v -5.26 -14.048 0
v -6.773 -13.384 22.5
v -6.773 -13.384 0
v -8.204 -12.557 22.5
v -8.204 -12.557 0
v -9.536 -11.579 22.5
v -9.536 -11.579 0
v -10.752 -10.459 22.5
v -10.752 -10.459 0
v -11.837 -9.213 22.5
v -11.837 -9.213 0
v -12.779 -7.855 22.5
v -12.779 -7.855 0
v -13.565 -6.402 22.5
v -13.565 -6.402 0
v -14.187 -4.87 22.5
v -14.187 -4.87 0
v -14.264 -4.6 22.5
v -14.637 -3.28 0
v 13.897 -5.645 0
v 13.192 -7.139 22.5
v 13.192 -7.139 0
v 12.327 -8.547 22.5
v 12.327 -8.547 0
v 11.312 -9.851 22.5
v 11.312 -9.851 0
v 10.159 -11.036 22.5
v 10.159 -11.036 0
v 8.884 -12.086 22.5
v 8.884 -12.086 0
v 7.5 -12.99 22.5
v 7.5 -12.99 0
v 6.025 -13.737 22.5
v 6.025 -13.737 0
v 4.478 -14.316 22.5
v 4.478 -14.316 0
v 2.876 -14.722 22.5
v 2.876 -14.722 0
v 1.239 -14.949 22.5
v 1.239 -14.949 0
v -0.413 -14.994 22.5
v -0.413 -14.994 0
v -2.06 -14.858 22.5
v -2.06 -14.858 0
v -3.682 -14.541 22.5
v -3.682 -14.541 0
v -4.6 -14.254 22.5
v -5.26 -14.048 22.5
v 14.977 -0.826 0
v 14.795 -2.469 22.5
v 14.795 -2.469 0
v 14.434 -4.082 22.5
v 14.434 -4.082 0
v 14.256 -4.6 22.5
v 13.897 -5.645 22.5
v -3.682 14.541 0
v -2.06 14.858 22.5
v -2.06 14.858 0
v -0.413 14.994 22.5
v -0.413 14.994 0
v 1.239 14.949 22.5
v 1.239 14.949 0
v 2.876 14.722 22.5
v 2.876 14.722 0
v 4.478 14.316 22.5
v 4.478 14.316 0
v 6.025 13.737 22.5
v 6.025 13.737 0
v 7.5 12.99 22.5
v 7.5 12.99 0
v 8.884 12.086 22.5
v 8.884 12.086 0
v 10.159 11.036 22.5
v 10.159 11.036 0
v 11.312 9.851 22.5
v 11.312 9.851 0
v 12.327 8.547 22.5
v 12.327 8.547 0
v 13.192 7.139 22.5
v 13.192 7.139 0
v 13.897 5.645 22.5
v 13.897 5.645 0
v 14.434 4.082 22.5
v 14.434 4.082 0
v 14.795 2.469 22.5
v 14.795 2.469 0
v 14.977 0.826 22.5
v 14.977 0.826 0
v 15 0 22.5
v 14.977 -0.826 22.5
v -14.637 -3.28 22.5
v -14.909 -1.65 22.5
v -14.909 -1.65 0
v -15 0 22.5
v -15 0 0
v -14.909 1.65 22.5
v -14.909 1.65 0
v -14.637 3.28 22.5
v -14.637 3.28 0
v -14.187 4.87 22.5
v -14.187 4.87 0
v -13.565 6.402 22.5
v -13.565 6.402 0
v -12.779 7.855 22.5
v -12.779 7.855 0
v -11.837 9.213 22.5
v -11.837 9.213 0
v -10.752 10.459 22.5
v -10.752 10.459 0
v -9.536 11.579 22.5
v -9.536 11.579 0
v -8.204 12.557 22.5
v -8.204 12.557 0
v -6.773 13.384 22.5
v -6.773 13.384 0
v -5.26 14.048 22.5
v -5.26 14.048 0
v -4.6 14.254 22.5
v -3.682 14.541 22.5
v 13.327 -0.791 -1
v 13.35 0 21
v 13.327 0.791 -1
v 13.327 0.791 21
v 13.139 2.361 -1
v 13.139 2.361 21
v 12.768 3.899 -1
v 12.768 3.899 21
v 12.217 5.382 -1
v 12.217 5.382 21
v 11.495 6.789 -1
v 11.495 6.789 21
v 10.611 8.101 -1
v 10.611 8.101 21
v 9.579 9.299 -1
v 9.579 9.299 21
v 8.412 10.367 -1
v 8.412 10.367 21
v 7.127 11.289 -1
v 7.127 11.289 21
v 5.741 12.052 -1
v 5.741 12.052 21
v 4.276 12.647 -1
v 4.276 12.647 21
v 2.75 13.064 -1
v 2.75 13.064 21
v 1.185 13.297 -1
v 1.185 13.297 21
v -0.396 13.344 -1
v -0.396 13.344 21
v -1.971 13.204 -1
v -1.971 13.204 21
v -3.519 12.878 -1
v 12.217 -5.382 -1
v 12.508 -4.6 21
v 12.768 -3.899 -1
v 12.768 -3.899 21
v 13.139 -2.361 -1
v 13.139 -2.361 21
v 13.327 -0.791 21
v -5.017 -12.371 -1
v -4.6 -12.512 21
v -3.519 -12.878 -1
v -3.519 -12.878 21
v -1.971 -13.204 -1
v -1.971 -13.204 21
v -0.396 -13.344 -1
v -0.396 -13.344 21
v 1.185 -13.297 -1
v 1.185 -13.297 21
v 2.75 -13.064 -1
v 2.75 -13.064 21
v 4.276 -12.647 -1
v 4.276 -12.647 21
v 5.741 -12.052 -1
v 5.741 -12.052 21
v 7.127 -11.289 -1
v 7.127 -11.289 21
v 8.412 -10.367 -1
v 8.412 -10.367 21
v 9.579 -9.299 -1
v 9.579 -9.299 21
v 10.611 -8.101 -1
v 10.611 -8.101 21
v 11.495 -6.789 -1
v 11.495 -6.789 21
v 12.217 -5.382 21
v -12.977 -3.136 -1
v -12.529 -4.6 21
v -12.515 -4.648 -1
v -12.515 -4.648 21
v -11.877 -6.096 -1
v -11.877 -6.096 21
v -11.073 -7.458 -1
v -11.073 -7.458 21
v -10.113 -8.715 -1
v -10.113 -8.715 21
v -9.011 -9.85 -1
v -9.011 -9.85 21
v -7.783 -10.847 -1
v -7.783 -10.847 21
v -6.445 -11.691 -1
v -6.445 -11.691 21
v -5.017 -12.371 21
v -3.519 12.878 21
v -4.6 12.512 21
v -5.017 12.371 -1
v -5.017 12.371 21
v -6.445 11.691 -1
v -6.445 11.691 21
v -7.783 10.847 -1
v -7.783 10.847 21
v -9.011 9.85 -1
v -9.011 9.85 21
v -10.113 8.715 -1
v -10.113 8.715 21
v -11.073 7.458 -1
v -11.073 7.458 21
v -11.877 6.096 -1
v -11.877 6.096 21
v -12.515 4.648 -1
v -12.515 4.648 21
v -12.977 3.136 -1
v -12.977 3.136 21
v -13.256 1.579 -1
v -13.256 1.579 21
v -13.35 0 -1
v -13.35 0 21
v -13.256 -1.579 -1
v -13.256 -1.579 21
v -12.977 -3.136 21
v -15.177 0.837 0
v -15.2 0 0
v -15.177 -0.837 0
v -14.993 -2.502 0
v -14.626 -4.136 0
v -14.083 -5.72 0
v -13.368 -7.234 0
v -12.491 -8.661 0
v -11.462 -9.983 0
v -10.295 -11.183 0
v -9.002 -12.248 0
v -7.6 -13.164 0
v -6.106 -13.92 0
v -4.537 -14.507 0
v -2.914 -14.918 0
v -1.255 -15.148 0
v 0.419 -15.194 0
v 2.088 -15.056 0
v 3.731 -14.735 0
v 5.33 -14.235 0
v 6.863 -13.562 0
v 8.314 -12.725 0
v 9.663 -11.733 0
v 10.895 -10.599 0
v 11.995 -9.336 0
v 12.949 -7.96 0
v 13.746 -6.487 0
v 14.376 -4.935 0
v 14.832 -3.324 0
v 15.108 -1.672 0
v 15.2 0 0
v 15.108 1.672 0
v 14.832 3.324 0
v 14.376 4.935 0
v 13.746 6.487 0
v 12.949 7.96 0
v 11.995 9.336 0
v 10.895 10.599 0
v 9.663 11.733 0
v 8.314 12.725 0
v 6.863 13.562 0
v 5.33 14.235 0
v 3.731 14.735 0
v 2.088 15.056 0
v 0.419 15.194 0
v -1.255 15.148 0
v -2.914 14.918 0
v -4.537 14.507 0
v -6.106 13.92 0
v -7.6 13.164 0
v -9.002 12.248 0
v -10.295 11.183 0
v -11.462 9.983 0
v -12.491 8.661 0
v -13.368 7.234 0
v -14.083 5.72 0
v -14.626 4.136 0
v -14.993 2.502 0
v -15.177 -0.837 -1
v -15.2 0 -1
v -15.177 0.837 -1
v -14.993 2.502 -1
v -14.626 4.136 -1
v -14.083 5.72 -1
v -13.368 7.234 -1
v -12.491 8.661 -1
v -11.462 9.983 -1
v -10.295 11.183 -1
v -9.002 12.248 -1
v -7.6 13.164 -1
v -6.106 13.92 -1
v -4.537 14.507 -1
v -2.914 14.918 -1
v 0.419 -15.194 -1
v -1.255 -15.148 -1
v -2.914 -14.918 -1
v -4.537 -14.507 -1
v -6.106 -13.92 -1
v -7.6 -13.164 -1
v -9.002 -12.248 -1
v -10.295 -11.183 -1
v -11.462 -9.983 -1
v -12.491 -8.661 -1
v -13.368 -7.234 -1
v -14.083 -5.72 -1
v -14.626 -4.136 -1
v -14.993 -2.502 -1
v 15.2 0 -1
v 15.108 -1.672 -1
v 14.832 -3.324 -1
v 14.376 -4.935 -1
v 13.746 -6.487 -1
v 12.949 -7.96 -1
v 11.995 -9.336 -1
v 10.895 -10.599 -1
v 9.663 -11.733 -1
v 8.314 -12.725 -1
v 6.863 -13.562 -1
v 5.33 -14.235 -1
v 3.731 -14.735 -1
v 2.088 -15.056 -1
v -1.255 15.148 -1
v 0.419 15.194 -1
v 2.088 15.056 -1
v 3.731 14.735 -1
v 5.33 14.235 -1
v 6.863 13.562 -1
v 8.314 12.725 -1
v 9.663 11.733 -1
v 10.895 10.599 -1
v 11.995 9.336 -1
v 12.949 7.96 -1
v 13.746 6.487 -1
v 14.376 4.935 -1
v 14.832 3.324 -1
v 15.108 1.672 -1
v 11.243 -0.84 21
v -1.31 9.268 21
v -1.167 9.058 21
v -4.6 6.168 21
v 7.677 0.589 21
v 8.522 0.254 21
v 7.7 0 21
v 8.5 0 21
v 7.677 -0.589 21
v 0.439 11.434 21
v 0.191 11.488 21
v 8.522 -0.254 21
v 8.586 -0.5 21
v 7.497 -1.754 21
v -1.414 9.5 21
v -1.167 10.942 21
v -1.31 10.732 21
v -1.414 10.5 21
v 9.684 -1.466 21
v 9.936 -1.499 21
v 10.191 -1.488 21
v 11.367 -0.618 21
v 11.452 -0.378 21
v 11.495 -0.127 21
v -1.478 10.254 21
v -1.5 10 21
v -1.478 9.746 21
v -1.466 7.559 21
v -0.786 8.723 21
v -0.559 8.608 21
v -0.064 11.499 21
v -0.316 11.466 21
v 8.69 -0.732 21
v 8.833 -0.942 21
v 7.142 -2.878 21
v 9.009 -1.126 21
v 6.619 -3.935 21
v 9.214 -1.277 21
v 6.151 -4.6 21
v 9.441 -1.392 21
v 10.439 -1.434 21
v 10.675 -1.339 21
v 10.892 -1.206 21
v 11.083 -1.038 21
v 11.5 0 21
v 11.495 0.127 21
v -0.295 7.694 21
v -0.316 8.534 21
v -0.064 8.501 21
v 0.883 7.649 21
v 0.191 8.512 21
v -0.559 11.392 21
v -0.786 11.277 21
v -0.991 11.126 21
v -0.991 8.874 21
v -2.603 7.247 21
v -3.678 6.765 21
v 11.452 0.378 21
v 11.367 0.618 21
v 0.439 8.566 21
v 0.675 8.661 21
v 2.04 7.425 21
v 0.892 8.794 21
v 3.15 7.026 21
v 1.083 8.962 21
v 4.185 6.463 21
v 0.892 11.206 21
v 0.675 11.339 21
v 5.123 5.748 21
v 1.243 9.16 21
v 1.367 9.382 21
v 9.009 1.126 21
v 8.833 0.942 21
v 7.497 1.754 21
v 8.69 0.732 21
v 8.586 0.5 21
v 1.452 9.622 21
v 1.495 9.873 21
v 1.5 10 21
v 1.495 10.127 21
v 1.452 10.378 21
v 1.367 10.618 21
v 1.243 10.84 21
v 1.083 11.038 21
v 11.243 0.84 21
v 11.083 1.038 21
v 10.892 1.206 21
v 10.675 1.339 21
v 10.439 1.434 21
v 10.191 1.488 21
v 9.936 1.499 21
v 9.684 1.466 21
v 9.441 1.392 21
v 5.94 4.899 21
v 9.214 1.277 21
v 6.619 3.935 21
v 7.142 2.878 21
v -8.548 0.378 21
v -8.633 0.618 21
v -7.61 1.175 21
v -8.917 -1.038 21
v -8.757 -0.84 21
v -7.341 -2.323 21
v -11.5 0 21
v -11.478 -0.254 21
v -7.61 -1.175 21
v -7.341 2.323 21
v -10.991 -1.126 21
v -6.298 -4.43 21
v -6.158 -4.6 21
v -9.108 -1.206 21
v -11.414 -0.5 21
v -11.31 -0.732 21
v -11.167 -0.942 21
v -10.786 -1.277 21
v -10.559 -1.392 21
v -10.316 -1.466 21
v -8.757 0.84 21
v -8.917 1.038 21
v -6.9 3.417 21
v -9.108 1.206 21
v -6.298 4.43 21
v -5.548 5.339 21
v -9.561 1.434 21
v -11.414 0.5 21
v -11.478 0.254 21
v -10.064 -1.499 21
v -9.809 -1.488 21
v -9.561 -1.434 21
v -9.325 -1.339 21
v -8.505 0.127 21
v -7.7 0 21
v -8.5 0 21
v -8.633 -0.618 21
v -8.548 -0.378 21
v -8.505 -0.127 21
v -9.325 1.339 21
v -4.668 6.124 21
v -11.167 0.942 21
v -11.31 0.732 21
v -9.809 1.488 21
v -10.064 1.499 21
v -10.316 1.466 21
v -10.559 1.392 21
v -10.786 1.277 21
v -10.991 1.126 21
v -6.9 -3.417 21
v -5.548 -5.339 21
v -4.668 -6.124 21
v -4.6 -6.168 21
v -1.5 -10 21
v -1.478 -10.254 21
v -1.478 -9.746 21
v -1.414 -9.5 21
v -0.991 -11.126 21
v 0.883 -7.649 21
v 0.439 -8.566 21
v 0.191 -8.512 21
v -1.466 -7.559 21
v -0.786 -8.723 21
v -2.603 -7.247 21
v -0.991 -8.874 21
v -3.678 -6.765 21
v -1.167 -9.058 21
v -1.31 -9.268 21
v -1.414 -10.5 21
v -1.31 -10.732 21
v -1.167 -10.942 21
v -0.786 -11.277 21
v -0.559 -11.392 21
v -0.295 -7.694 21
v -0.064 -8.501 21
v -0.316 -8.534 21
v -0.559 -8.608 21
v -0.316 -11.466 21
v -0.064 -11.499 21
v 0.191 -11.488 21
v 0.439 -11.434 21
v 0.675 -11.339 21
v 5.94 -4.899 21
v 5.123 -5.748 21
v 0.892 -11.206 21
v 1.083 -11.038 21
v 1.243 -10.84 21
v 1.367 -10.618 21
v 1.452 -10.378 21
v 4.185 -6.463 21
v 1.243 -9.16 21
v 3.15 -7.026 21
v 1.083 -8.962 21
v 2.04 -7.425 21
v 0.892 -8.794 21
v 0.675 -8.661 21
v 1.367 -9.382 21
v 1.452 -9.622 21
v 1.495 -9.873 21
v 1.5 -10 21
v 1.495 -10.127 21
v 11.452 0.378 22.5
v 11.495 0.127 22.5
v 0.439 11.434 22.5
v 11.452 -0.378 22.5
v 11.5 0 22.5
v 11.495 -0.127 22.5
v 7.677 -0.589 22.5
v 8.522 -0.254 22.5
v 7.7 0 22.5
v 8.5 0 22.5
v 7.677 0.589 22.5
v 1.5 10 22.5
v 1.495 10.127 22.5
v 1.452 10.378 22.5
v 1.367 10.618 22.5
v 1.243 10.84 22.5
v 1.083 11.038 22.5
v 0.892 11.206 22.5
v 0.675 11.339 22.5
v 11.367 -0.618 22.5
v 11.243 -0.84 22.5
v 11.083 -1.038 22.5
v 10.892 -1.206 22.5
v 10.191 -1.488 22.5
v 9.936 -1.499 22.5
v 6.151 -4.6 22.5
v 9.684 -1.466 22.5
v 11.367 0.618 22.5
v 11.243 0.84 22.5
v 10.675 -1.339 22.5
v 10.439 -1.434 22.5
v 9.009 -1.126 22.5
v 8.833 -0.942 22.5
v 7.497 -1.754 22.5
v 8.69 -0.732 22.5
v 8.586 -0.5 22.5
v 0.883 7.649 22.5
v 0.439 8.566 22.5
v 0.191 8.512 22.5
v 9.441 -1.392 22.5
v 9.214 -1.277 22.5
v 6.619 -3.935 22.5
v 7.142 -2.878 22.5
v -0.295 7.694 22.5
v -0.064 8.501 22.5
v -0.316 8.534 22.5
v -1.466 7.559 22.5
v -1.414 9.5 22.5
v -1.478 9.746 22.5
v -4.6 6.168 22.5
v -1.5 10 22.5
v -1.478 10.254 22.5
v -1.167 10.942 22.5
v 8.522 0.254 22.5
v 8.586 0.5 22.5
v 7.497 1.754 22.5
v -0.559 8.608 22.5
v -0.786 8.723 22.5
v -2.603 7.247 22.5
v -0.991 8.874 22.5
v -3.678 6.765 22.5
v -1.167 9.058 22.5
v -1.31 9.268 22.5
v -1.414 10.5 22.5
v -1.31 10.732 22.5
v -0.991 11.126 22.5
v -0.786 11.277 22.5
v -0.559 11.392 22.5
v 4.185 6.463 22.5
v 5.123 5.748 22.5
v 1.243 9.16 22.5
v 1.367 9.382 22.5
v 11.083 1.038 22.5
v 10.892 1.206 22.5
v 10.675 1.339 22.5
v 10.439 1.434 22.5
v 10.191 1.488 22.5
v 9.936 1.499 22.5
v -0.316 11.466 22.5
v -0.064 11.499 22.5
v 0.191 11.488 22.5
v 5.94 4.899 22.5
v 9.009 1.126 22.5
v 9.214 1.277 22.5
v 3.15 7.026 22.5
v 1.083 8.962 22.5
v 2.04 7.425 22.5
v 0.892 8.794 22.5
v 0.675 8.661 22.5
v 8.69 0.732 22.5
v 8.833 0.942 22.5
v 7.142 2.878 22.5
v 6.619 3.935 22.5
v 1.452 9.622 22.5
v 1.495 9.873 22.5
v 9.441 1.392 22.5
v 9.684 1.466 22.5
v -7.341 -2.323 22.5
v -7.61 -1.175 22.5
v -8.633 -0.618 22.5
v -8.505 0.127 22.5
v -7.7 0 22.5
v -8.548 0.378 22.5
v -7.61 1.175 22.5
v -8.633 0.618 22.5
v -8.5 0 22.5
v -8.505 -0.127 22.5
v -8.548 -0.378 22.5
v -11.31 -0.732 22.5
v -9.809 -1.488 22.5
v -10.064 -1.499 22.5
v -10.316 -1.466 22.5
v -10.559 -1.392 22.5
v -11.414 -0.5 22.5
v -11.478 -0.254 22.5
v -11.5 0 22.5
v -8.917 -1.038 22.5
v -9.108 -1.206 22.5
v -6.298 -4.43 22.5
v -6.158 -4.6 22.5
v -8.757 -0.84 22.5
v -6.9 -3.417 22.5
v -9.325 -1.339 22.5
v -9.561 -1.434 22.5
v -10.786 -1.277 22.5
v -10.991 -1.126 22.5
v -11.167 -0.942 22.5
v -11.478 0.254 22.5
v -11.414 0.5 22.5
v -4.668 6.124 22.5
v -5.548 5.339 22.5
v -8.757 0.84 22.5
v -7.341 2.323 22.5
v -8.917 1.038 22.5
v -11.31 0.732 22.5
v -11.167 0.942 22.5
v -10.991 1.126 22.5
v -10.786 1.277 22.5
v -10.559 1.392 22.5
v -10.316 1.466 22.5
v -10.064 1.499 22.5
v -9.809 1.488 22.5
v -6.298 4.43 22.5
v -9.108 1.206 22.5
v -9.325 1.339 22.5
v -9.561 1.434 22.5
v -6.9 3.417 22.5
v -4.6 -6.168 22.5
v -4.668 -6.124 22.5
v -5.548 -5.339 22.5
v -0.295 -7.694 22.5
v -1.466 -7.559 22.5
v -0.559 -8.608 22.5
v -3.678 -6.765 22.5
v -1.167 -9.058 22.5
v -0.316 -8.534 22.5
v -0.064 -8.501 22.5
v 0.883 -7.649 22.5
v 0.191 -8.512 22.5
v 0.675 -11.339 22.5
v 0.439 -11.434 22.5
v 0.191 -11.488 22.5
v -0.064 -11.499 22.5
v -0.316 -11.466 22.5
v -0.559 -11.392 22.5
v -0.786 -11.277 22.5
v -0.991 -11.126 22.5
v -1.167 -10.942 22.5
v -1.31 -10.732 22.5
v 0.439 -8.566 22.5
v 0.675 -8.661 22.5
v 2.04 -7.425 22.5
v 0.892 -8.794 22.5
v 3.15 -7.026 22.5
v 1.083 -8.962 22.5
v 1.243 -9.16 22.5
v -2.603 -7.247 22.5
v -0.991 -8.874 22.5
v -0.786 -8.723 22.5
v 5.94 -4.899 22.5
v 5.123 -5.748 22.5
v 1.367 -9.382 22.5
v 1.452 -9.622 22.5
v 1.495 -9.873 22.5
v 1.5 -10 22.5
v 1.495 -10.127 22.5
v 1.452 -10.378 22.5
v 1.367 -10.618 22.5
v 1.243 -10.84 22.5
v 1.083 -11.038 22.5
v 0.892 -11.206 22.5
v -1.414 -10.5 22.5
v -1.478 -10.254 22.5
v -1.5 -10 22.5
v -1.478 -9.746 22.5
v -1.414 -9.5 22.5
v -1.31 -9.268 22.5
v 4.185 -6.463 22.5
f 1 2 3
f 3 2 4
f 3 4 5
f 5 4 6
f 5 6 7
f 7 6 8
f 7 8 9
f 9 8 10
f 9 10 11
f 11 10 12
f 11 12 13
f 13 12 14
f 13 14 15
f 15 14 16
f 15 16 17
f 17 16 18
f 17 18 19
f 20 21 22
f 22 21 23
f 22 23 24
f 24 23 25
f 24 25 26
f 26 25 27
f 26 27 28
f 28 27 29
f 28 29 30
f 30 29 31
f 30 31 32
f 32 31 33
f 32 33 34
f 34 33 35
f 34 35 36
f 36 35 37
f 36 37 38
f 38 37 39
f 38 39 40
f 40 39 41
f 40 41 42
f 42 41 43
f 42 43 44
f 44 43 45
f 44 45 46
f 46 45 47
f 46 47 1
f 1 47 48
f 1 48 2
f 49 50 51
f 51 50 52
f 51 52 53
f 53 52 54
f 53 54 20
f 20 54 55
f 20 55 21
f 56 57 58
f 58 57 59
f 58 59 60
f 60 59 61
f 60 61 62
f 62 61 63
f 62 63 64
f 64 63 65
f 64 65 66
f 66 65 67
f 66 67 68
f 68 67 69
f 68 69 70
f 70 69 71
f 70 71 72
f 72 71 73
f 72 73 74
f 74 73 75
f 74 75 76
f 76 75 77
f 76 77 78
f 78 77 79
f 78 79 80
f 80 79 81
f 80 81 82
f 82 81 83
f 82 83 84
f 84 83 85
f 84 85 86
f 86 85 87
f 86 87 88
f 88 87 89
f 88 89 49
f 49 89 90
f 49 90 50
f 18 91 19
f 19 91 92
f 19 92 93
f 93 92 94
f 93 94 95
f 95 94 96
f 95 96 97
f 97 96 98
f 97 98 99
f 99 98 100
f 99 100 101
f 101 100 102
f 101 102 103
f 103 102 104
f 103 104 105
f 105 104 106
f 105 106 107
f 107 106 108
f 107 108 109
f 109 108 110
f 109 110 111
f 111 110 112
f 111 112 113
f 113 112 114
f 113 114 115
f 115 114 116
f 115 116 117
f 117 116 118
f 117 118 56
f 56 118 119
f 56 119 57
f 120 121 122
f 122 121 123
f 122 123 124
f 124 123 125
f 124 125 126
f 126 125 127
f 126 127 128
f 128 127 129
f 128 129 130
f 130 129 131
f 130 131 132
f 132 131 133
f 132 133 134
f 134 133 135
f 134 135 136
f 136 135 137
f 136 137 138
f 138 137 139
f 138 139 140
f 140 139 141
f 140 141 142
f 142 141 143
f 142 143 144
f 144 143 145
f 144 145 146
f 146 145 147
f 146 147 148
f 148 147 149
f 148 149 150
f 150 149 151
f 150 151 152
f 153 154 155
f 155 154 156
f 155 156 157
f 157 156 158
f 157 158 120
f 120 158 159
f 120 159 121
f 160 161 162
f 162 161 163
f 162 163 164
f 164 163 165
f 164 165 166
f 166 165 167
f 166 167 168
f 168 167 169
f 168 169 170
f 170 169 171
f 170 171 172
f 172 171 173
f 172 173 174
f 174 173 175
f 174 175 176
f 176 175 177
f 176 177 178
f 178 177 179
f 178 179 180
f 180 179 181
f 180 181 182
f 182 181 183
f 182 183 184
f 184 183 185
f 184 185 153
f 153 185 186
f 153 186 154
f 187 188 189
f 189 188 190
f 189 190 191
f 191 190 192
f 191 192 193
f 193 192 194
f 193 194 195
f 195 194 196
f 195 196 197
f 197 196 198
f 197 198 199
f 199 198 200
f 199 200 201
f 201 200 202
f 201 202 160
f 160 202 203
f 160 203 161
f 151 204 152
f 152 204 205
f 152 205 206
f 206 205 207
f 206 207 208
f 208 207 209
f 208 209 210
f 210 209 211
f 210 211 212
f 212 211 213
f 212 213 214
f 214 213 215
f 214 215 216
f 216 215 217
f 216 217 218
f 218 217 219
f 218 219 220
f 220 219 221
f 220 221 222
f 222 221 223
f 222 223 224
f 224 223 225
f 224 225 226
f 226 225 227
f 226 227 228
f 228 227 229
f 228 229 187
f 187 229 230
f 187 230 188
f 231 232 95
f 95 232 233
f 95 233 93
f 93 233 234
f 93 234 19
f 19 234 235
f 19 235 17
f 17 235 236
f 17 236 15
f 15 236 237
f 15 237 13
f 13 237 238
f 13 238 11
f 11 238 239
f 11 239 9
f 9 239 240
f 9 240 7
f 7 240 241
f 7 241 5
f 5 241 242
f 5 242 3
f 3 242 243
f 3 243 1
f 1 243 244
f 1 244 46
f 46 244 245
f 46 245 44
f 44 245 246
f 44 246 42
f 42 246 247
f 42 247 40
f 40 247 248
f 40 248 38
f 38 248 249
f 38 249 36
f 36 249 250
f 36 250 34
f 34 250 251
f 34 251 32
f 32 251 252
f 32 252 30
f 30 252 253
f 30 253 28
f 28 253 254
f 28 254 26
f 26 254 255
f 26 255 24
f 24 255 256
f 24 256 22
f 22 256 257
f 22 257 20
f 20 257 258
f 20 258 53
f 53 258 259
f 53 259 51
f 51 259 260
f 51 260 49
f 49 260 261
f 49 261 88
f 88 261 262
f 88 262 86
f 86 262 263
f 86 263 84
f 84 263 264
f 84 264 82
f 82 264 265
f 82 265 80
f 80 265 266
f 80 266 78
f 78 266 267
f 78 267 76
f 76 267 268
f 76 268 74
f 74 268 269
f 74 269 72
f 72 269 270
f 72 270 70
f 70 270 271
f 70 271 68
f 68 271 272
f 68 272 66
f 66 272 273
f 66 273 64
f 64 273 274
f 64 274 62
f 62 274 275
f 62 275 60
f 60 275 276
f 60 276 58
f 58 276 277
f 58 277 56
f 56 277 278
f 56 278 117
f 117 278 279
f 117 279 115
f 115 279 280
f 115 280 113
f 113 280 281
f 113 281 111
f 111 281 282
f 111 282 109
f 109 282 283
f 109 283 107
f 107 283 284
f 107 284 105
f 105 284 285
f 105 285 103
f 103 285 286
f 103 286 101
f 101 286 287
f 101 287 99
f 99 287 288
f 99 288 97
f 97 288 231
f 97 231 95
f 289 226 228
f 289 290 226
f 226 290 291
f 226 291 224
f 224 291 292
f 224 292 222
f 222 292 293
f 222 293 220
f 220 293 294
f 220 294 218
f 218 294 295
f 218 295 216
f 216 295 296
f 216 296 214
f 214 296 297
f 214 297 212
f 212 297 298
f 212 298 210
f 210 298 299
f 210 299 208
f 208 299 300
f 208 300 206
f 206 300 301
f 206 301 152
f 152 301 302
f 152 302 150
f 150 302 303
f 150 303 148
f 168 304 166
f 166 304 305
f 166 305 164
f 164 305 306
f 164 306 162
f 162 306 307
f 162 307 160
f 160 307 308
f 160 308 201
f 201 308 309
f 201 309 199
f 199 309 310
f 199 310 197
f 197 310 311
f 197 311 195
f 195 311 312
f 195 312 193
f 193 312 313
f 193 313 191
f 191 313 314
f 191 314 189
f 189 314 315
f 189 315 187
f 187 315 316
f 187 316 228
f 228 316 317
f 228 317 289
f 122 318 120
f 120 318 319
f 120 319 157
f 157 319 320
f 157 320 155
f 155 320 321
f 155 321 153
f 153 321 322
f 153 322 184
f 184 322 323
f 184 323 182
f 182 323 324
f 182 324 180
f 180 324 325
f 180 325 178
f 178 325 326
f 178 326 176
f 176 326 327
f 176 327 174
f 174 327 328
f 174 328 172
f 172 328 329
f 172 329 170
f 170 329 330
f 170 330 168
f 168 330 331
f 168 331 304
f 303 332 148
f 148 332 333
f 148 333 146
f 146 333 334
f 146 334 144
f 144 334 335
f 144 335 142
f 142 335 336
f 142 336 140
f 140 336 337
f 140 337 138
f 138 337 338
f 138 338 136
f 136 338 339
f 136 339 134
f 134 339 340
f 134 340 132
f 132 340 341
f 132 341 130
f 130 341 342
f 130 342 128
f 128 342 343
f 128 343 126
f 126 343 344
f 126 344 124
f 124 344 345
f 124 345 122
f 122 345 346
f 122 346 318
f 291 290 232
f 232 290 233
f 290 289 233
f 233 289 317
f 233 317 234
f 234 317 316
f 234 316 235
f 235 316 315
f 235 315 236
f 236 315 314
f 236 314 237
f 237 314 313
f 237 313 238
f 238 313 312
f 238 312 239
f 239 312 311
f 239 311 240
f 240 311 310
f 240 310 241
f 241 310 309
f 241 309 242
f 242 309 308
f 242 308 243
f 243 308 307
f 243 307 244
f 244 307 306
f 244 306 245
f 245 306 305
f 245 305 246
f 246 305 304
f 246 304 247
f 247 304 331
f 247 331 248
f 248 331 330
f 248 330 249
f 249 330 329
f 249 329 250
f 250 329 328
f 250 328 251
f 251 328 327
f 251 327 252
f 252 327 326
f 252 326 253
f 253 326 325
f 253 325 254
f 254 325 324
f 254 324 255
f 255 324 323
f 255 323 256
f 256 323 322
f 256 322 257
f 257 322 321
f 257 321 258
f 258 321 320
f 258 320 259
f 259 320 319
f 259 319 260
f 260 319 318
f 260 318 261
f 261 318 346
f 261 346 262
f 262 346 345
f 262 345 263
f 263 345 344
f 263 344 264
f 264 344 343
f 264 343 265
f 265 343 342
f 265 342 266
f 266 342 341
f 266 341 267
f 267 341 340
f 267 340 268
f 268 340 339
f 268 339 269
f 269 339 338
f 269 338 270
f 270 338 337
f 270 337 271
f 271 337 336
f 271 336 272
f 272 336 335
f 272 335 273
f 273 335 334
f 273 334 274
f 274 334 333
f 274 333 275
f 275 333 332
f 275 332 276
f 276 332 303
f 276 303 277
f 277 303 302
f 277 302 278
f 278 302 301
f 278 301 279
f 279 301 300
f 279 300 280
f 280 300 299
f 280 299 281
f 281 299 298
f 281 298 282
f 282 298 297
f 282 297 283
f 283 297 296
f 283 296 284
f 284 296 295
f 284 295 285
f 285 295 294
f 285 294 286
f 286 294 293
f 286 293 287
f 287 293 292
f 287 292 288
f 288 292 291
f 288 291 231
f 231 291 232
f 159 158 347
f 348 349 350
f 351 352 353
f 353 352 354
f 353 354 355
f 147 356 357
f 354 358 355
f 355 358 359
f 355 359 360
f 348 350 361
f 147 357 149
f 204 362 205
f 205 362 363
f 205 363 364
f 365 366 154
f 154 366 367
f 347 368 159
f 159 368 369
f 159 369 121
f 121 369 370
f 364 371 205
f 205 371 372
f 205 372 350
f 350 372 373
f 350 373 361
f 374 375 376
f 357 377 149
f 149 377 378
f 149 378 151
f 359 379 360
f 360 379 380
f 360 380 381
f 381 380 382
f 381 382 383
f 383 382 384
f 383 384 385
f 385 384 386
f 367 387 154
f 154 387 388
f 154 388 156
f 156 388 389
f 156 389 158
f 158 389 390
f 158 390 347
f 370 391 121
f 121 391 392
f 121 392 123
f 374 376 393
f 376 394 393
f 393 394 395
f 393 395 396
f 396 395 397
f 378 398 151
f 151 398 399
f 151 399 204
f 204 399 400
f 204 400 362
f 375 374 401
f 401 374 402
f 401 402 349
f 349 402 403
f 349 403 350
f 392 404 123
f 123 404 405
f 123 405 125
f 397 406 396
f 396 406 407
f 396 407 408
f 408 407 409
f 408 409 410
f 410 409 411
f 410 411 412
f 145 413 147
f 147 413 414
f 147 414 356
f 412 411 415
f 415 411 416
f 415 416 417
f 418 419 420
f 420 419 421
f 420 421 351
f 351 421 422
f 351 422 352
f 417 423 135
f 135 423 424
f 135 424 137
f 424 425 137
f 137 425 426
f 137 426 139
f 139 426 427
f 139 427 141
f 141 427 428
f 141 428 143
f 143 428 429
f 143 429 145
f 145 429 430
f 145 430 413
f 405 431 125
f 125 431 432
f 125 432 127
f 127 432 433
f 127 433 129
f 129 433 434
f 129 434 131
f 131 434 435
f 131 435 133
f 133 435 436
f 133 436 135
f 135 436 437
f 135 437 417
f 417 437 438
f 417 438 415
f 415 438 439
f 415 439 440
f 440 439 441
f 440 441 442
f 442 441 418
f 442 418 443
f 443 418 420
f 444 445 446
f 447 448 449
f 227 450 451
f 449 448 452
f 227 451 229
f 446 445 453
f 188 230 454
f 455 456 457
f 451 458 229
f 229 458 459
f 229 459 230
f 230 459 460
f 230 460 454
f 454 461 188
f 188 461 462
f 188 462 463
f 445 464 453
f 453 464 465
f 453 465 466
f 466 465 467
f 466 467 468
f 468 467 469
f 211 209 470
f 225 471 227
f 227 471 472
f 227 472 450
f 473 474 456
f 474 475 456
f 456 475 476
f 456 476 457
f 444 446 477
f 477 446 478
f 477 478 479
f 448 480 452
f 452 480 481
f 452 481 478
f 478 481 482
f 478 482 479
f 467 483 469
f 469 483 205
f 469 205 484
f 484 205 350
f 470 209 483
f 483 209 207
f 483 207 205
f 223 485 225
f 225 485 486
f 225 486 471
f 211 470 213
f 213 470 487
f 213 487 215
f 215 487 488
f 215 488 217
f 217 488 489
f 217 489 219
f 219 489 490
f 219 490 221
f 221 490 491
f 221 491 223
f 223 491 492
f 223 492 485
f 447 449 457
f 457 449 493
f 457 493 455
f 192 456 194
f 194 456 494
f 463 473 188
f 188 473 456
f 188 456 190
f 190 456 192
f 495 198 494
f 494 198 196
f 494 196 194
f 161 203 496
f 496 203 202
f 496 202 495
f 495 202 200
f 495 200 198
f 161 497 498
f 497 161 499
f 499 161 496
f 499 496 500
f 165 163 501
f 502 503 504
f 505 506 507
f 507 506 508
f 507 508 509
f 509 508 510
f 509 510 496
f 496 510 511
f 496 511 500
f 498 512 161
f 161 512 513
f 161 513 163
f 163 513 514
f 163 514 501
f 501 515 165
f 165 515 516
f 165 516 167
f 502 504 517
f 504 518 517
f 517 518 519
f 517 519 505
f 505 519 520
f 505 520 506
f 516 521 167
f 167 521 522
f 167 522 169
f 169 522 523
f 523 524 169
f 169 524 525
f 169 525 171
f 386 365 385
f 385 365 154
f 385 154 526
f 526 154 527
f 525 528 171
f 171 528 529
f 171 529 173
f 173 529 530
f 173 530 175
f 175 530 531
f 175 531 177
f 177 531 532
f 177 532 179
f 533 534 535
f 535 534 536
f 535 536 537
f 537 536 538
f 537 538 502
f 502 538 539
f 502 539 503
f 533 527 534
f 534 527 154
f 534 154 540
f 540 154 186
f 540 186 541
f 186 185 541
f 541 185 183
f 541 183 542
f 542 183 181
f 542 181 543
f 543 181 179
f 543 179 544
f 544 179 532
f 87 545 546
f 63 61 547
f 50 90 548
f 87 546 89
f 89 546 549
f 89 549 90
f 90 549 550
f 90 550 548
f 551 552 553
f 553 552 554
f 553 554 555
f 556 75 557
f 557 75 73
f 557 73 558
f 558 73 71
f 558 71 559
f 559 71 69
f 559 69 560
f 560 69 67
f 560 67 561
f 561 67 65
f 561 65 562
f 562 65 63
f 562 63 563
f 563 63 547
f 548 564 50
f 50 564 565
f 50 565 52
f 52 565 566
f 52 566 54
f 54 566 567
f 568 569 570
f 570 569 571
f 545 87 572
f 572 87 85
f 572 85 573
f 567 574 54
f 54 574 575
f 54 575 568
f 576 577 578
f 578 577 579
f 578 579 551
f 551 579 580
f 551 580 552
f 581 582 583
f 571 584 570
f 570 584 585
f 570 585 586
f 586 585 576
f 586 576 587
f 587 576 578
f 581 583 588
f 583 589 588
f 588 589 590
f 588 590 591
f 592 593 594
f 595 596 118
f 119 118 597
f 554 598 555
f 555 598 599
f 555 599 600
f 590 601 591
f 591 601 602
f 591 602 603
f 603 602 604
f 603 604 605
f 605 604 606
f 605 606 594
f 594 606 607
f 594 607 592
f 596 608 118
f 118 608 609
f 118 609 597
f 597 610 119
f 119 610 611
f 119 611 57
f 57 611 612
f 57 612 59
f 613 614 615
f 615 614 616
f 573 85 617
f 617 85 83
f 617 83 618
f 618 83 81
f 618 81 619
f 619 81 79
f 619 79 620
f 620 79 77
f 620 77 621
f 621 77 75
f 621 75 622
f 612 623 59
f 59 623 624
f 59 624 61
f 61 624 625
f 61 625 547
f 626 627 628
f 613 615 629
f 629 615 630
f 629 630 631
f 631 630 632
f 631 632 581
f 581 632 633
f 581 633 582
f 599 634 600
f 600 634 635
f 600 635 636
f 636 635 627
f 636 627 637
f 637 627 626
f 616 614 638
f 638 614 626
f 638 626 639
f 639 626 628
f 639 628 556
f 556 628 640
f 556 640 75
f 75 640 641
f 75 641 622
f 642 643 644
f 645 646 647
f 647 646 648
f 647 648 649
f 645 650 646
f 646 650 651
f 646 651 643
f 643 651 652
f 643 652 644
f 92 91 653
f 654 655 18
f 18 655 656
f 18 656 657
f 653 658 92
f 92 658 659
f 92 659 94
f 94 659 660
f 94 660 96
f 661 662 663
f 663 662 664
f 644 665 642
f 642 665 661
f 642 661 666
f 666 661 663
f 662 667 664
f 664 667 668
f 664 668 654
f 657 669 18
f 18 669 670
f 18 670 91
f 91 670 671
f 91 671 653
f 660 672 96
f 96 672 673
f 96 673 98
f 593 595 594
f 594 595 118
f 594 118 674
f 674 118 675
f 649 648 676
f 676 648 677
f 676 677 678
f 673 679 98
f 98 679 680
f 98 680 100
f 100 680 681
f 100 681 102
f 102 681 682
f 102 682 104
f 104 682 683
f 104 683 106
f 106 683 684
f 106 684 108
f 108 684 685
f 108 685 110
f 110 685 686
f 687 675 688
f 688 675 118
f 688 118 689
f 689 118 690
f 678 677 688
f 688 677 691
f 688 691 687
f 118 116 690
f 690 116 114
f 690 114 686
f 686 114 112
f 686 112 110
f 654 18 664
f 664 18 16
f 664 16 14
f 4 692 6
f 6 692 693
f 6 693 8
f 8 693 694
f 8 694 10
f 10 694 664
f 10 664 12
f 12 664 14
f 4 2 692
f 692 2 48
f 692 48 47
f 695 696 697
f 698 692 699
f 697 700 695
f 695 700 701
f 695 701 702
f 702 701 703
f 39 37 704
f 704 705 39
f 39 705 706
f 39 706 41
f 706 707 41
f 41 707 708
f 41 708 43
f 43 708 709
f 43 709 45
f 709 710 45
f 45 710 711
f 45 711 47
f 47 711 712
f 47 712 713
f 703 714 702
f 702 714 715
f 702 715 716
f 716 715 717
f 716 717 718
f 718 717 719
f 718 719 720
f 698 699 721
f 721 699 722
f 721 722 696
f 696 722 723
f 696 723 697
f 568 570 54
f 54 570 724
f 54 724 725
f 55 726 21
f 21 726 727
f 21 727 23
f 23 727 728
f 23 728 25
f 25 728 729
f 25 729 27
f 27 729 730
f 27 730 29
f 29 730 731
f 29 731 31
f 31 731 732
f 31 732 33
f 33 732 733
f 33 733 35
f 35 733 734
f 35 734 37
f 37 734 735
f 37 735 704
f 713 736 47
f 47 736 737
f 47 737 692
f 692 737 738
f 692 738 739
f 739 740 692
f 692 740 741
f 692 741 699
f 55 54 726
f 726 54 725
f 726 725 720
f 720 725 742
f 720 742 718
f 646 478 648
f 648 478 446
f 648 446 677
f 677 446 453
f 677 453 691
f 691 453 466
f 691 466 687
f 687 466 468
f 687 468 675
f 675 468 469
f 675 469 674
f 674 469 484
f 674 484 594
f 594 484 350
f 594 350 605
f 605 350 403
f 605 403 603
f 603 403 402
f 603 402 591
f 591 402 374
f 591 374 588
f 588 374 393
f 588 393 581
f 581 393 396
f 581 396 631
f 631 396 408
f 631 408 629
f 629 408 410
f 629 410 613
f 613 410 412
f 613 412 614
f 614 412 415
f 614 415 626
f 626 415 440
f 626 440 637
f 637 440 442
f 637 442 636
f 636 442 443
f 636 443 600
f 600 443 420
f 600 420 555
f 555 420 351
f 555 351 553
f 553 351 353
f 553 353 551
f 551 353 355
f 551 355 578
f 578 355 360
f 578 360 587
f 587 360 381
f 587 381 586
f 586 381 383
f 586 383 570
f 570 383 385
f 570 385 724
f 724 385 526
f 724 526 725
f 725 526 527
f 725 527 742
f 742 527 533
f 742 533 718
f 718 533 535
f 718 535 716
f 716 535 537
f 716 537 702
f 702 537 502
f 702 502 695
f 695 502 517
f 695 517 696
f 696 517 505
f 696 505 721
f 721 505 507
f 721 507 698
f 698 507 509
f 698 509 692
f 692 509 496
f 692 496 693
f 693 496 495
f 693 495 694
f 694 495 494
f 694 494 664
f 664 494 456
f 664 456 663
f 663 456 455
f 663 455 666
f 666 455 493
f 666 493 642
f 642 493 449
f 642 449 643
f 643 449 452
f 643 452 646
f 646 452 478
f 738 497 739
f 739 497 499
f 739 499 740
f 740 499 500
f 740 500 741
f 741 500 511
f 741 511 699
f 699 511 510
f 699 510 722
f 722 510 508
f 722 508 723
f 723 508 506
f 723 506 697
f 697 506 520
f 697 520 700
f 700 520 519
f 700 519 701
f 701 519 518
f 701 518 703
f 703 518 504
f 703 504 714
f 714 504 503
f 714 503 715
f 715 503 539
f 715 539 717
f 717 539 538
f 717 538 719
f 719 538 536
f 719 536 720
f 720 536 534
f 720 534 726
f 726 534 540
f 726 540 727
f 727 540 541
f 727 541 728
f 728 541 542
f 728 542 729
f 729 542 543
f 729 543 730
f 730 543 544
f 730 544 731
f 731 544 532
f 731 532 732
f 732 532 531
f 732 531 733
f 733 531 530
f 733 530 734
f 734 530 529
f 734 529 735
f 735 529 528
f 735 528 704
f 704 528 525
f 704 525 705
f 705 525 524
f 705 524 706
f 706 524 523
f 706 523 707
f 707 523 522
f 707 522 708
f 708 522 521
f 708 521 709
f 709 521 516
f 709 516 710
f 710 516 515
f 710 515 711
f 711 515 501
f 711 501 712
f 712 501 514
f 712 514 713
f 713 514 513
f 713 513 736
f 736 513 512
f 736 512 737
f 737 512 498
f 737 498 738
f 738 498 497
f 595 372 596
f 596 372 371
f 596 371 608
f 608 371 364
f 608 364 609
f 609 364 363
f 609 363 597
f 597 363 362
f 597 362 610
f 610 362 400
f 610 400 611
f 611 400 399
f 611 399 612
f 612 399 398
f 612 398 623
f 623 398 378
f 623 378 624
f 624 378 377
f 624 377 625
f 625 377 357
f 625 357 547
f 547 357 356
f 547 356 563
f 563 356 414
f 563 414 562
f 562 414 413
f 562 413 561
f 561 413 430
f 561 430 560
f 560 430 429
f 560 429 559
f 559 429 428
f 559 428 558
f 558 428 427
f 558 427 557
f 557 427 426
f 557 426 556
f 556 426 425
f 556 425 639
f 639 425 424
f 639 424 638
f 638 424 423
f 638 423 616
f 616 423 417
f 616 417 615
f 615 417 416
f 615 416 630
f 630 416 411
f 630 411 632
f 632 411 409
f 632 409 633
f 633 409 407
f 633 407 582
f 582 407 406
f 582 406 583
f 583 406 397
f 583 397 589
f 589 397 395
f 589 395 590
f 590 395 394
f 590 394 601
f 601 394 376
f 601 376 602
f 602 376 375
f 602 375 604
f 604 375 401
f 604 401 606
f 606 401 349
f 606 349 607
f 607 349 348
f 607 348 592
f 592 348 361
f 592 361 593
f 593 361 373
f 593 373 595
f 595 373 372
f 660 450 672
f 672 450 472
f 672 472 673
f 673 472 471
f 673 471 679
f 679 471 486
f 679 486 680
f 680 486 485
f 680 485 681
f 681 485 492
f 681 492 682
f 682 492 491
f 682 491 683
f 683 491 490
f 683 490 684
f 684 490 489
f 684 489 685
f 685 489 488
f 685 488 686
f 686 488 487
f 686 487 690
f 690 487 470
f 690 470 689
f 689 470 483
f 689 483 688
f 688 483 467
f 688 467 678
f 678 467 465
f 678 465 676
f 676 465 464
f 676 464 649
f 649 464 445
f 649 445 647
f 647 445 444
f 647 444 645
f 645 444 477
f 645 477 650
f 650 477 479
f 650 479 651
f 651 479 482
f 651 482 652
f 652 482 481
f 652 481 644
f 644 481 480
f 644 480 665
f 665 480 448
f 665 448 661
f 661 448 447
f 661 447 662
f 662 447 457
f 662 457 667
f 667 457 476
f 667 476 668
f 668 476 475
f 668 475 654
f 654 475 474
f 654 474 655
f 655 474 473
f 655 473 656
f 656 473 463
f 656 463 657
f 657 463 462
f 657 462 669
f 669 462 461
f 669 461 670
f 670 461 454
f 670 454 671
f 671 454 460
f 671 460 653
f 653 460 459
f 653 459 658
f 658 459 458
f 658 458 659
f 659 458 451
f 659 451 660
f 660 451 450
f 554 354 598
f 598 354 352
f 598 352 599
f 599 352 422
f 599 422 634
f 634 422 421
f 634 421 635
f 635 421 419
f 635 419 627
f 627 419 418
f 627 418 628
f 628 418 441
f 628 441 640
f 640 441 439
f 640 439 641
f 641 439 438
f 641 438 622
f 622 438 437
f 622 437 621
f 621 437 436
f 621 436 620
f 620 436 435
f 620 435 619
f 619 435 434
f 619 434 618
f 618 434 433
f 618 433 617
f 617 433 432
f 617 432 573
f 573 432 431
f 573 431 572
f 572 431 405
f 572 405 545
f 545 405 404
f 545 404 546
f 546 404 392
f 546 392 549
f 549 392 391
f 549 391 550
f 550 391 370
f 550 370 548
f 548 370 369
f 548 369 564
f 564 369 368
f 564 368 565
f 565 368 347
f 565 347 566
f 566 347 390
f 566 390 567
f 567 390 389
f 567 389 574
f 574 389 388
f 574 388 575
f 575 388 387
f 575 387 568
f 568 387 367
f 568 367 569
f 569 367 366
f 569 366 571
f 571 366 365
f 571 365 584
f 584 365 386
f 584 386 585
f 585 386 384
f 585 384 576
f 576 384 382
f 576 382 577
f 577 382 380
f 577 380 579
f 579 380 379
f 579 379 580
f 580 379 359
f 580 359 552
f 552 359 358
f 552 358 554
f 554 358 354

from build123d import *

# Parameters (mm, degrees)
ESQUISSE1_R        = 15
ESQUISSE1_R_2      = 13.35
BOSS_EXTRU_1_DEPTH = 21
BOSS_EXTRU_2_START = 1
ESQUISSE2_R        = 15.2
ESQUISSE2_R_2      = 13.35
BOSS_EXTRU_2_DEPTH = 1
ESQUISSE3_R        = 15
ESQUISSE3_R_2      = 7.7
ESQUISSE3_R_3      = 1.5
BOSS_EXTRU_3_DEPTH = 1.5


with BuildPart() as part:
    # Esquisse1 → Boss.-Extru.1 (new body)
    with BuildSketch(Plane.XY):
        with Locations(Location((0, 0, 0), (0, 0, 180))):
            Circle(ESQUISSE1_R)
        with Locations(Location((0, 0, 0), (0, 0, 180))):
            Circle(ESQUISSE1_R_2, mode=Mode.SUBTRACT)
    extrude(amount=BOSS_EXTRU_1_DEPTH)

    # Esquisse2 → Boss.-Extru.2 (add)
    with BuildSketch(Plane(origin=(0, 0, 0), x_dir=(-1, 0, 0), z_dir=(0, 0, -1)).offset(BOSS_EXTRU_2_START)):
        Circle(ESQUISSE2_R)
        Circle(ESQUISSE2_R_2, mode=Mode.SUBTRACT)
    extrude(amount=-BOSS_EXTRU_2_DEPTH)

    # Esquisse3 → Boss.-Extru.3 (add)
    with BuildSketch(Plane.XY.offset(21)):
        with Locations(Location((0, 0, 0), (0, 0, 180))):
            Circle(ESQUISSE3_R)
        Circle(ESQUISSE3_R_2, mode=Mode.SUBTRACT)
        with Locations((0, -10)):
            Circle(ESQUISSE3_R_3, mode=Mode.SUBTRACT)
        with Locations((0, 10)):
            Circle(ESQUISSE3_R_3, mode=Mode.SUBTRACT)
        with Locations((-10, 0)):
            Circle(ESQUISSE3_R_3, mode=Mode.SUBTRACT)
        with Locations((10, 0)):
            Circle(ESQUISSE3_R_3, mode=Mode.SUBTRACT)
    extrude(amount=BOSS_EXTRU_3_DEPTH)


solid = part.part
